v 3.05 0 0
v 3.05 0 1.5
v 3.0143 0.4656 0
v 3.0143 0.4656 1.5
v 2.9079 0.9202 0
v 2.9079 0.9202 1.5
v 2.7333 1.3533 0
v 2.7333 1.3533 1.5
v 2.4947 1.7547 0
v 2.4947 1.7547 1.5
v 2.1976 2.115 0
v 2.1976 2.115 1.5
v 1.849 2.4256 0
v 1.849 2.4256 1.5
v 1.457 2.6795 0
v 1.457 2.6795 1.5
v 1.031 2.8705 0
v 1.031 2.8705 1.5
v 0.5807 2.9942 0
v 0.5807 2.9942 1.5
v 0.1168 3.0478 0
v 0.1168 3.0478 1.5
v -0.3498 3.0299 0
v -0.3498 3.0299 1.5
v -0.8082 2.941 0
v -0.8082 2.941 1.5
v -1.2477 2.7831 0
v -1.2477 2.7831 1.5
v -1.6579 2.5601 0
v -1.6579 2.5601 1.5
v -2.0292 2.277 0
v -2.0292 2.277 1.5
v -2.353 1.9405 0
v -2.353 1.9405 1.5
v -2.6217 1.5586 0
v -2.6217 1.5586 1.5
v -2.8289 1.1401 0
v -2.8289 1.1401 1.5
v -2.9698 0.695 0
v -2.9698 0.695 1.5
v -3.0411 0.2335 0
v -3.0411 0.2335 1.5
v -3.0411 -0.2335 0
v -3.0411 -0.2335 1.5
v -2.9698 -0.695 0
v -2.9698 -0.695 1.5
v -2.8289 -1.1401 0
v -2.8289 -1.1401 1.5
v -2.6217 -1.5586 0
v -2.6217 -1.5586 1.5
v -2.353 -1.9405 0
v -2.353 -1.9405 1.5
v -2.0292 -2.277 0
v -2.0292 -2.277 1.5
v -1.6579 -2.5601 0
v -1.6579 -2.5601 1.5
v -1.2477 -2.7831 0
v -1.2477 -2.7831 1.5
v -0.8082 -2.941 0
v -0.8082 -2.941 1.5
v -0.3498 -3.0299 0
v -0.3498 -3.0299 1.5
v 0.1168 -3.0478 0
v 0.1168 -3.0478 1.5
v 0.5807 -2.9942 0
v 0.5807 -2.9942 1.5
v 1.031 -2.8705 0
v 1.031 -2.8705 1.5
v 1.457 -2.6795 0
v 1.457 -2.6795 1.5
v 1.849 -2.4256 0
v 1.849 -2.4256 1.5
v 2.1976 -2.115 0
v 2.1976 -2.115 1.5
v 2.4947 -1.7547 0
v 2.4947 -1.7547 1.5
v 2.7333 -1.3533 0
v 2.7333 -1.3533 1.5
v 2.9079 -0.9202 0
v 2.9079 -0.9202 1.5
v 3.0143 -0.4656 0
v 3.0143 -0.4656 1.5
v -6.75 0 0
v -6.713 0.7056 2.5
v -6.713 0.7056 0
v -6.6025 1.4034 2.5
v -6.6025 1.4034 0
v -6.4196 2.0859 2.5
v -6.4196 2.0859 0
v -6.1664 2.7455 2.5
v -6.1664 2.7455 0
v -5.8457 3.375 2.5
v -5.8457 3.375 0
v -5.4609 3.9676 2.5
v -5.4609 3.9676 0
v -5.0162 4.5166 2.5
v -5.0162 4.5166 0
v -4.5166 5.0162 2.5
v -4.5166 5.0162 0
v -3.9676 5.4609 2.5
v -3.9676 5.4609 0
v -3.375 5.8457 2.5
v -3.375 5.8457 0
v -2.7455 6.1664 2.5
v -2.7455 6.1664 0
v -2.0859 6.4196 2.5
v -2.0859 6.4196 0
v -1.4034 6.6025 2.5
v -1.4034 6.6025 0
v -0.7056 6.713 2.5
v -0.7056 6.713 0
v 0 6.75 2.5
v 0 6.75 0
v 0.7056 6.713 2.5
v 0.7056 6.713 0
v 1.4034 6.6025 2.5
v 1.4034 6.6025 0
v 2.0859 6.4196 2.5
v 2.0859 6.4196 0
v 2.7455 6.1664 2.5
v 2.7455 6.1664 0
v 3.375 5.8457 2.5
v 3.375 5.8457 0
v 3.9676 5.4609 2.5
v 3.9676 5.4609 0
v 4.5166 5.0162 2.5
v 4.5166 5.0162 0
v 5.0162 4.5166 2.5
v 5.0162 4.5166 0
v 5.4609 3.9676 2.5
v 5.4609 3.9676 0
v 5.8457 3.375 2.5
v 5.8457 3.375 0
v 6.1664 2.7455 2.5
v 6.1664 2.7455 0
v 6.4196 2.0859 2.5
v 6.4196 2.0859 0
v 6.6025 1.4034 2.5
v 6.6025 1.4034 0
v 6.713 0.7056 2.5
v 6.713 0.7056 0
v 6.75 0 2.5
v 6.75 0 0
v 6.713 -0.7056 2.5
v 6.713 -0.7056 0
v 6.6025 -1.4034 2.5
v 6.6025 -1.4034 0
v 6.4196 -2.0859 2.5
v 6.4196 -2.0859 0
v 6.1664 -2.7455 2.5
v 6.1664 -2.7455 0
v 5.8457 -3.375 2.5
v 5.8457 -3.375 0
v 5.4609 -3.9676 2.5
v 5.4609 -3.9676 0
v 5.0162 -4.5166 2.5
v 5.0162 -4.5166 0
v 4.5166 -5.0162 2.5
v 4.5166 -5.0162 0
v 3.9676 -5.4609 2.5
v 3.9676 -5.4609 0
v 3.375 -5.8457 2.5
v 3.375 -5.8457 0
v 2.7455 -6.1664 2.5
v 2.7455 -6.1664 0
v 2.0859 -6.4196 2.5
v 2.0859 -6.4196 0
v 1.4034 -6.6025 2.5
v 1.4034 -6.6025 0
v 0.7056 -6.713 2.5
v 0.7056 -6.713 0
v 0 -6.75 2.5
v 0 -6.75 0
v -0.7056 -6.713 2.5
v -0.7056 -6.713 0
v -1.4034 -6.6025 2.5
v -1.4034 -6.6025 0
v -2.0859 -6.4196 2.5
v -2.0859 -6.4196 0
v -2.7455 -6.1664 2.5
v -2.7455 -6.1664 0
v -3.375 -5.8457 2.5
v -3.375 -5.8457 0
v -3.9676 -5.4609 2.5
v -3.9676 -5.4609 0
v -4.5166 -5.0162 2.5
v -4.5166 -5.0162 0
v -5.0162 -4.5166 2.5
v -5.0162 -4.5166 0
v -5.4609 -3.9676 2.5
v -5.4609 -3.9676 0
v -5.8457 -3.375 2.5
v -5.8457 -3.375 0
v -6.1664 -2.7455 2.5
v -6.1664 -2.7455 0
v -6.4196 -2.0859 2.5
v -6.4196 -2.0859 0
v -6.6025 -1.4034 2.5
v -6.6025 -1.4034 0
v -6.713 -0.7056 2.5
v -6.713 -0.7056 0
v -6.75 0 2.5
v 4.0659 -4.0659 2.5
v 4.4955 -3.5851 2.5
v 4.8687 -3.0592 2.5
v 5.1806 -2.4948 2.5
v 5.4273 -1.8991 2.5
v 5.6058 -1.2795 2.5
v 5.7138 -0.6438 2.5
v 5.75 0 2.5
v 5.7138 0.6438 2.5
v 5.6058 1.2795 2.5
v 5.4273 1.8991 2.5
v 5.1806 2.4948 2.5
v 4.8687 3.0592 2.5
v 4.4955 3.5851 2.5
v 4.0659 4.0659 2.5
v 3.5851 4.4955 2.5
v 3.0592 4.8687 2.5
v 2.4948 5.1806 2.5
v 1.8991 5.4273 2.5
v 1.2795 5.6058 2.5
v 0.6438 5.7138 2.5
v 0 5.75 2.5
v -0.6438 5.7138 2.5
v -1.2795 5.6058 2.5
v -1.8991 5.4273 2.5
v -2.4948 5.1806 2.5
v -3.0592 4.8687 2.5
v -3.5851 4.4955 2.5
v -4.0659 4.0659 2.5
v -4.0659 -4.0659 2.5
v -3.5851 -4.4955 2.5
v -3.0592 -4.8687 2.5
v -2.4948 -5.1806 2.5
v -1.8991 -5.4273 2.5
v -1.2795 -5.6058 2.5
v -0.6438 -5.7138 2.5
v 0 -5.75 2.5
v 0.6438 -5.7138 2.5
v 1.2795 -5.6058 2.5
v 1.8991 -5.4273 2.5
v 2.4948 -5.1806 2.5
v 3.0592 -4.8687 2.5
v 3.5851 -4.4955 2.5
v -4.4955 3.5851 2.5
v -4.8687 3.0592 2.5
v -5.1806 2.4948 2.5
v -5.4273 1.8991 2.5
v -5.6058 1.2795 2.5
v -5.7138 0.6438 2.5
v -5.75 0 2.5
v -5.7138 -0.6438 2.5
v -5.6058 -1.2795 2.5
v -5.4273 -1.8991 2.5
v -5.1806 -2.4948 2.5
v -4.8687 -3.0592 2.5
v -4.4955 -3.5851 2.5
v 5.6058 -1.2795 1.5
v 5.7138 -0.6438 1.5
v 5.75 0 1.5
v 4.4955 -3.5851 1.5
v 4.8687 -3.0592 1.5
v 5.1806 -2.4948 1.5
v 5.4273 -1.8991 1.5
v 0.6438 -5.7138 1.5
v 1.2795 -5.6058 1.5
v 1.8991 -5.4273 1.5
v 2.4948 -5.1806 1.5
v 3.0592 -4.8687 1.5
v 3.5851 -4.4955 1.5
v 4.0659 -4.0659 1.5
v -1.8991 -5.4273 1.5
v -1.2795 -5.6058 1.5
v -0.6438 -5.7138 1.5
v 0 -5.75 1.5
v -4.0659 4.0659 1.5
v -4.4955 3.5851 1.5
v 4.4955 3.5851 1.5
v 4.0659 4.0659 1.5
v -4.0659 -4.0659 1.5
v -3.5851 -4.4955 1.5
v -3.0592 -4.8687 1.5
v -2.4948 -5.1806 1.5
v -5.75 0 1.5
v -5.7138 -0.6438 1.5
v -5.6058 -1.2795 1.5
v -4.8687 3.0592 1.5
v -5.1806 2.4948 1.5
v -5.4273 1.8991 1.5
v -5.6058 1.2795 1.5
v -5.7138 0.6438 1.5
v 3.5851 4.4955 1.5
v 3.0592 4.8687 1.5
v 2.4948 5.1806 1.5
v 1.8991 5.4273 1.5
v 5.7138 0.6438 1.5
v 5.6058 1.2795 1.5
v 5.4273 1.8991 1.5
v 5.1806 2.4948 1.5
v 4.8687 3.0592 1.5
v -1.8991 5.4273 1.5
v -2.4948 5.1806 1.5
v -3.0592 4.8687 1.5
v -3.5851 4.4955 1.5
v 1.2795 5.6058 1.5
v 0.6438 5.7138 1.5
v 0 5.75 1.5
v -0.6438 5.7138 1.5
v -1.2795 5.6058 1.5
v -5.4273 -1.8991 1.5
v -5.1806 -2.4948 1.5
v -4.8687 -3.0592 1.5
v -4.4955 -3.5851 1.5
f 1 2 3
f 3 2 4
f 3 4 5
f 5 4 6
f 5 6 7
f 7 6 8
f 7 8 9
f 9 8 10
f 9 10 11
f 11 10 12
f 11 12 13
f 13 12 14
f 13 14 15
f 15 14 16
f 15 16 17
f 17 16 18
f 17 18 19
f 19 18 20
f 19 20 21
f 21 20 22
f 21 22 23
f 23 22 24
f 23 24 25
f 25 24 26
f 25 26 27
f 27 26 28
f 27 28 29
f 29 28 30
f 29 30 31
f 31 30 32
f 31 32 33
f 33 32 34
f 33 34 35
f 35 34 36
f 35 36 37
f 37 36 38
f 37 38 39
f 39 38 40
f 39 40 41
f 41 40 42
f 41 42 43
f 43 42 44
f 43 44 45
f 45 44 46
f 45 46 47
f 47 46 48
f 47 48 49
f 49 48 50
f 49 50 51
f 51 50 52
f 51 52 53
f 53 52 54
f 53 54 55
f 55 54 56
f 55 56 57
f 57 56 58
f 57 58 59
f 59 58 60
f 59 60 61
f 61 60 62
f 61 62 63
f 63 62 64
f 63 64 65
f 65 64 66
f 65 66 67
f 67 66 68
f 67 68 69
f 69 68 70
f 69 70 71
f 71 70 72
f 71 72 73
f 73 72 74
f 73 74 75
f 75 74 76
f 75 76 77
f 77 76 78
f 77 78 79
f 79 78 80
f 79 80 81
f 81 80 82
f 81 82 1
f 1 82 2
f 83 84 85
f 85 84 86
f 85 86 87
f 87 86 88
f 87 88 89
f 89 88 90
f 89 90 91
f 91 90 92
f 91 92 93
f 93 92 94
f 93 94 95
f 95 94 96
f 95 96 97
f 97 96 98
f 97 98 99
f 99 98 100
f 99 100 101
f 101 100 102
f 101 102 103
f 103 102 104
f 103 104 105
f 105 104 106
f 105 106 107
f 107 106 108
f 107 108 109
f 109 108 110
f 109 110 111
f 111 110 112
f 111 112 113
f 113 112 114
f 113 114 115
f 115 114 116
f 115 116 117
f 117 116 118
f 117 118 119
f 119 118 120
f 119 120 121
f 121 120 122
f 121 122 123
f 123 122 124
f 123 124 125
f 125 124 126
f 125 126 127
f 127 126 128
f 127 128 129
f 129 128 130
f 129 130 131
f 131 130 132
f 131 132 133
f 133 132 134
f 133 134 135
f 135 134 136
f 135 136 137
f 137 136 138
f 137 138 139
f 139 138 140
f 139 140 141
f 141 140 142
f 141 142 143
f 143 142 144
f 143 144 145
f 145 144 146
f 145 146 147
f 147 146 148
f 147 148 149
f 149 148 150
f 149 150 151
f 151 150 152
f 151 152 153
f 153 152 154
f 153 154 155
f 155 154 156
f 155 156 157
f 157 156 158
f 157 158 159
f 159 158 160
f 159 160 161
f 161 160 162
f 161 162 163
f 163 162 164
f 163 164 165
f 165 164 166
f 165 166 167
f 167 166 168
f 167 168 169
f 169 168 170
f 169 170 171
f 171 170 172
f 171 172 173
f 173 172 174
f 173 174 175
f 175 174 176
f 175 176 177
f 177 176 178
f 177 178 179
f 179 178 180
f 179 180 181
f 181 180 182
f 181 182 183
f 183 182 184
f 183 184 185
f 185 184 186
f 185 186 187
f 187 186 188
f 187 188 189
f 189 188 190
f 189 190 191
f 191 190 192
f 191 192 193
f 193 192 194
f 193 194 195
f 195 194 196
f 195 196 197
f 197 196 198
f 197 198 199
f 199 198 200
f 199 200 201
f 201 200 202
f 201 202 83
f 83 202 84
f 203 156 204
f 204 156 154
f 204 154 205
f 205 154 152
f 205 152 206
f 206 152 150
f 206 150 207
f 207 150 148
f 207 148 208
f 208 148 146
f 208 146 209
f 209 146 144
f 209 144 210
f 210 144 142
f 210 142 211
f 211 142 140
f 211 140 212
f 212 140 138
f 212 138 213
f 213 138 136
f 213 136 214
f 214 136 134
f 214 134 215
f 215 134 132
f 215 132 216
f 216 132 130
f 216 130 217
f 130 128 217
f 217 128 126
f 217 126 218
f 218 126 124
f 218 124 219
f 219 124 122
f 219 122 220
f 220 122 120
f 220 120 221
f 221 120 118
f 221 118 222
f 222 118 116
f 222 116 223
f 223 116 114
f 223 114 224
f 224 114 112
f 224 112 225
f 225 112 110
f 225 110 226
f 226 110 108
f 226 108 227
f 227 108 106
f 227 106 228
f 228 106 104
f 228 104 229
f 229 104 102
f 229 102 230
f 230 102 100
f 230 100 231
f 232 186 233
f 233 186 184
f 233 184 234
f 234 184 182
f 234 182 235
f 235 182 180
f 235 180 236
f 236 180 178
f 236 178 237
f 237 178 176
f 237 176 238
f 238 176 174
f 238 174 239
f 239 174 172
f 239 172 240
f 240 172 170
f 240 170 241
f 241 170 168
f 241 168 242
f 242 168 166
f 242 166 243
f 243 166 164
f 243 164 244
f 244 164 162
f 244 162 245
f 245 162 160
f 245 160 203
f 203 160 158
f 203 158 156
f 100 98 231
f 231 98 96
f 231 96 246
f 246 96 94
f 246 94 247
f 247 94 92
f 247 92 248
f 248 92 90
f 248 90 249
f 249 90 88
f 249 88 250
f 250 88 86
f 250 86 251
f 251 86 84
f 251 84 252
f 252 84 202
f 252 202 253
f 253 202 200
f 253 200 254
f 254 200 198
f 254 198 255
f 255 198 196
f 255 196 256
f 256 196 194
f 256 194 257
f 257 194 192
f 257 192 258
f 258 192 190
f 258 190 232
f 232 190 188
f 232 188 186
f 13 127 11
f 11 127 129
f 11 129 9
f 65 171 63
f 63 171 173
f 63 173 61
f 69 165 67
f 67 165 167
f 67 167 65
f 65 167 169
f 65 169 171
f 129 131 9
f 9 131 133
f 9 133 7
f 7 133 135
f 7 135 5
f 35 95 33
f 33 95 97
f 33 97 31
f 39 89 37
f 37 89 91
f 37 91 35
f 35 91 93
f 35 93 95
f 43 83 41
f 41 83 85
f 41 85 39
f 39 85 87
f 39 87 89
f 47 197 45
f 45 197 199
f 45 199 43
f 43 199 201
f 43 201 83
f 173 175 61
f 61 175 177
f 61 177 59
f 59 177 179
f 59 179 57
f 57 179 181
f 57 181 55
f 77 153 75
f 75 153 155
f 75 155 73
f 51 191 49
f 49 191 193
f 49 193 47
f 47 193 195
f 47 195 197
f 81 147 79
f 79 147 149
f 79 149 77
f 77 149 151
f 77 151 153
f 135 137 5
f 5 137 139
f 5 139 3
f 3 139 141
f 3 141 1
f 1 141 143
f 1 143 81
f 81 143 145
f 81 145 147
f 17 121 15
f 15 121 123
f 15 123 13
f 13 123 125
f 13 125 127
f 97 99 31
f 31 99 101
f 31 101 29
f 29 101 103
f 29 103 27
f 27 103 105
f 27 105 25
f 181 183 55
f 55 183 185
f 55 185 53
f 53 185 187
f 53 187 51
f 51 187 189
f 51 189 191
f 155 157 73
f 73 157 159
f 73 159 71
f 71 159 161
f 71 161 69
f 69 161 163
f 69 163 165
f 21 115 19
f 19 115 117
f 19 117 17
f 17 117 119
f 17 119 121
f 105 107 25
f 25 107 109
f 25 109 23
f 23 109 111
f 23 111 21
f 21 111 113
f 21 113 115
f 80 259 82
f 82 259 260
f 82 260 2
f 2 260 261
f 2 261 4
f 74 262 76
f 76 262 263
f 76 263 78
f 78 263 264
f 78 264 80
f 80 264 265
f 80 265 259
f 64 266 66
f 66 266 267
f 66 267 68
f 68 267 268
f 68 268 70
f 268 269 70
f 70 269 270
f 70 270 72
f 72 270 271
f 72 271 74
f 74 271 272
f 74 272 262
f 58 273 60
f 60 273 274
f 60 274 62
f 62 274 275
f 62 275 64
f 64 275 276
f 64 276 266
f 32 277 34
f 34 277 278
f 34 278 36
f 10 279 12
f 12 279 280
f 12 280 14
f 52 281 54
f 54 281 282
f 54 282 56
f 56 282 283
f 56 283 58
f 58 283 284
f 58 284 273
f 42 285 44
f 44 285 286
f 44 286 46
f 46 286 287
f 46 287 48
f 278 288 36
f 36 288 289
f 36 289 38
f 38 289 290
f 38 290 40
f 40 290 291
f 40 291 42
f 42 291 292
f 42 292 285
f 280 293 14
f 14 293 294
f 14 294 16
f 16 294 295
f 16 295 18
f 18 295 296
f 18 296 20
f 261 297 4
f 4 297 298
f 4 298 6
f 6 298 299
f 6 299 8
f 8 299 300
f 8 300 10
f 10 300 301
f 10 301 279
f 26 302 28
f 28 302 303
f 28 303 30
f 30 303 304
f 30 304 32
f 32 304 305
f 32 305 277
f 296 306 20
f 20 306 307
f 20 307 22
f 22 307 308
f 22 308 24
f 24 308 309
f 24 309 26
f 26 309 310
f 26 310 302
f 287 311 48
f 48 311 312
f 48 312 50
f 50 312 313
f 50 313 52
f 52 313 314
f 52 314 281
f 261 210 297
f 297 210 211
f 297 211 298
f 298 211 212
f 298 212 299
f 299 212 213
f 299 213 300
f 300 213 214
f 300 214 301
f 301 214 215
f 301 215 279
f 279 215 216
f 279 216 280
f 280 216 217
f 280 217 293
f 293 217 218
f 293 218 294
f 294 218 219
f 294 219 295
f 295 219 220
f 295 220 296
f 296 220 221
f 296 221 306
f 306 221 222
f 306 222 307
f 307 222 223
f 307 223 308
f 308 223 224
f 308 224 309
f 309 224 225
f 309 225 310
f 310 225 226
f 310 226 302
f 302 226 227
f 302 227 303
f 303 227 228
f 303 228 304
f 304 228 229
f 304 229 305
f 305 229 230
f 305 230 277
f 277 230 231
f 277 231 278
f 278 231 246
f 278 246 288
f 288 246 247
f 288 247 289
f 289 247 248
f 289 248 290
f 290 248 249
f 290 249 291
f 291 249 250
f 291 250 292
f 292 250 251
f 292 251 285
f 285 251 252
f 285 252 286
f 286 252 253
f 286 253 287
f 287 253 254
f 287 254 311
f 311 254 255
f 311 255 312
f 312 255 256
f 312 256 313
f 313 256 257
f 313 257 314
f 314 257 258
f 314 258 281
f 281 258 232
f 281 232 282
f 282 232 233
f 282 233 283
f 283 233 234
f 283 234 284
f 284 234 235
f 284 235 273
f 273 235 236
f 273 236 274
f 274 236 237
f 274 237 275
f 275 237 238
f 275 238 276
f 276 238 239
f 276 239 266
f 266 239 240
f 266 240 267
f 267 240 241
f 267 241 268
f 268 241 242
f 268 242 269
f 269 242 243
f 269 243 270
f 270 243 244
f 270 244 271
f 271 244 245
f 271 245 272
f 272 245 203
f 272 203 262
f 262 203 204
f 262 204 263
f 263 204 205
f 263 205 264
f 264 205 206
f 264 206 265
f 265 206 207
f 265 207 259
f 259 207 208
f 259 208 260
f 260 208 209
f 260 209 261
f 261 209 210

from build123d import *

# Parameters (mm, degrees)
SKETCH_1_R          = 6.75
EXTRUDE_1_DEPTH     = 2.5
SKETCH_2_R          = 3.05
CUT_EXTRUDE_1_DEPTH = 3.5
SKETCH_3_R          = 5.75
CUT_EXTRUDE_2_DEPTH = 1


with BuildPart() as part:
    # 草图1 → 凸台-拉伸1 (new body)
    with BuildSketch(Plane.XY):
        Circle(SKETCH_1_R)
    extrude(amount=EXTRUDE_1_DEPTH)

    # 草图2 → 切除-拉伸1 (cut, through all)
    with BuildSketch(Plane.XY.offset(2.5)):
        Circle(SKETCH_2_R)
    extrude(amount=-CUT_EXTRUDE_1_DEPTH, mode=Mode.SUBTRACT)

    # 草图3 → 切除-拉伸2 (cut)
    with BuildSketch(Plane.XY.offset(2.5)):
        Circle(SKETCH_3_R)
    extrude(amount=-CUT_EXTRUDE_2_DEPTH, mode=Mode.SUBTRACT)


solid = part.part
